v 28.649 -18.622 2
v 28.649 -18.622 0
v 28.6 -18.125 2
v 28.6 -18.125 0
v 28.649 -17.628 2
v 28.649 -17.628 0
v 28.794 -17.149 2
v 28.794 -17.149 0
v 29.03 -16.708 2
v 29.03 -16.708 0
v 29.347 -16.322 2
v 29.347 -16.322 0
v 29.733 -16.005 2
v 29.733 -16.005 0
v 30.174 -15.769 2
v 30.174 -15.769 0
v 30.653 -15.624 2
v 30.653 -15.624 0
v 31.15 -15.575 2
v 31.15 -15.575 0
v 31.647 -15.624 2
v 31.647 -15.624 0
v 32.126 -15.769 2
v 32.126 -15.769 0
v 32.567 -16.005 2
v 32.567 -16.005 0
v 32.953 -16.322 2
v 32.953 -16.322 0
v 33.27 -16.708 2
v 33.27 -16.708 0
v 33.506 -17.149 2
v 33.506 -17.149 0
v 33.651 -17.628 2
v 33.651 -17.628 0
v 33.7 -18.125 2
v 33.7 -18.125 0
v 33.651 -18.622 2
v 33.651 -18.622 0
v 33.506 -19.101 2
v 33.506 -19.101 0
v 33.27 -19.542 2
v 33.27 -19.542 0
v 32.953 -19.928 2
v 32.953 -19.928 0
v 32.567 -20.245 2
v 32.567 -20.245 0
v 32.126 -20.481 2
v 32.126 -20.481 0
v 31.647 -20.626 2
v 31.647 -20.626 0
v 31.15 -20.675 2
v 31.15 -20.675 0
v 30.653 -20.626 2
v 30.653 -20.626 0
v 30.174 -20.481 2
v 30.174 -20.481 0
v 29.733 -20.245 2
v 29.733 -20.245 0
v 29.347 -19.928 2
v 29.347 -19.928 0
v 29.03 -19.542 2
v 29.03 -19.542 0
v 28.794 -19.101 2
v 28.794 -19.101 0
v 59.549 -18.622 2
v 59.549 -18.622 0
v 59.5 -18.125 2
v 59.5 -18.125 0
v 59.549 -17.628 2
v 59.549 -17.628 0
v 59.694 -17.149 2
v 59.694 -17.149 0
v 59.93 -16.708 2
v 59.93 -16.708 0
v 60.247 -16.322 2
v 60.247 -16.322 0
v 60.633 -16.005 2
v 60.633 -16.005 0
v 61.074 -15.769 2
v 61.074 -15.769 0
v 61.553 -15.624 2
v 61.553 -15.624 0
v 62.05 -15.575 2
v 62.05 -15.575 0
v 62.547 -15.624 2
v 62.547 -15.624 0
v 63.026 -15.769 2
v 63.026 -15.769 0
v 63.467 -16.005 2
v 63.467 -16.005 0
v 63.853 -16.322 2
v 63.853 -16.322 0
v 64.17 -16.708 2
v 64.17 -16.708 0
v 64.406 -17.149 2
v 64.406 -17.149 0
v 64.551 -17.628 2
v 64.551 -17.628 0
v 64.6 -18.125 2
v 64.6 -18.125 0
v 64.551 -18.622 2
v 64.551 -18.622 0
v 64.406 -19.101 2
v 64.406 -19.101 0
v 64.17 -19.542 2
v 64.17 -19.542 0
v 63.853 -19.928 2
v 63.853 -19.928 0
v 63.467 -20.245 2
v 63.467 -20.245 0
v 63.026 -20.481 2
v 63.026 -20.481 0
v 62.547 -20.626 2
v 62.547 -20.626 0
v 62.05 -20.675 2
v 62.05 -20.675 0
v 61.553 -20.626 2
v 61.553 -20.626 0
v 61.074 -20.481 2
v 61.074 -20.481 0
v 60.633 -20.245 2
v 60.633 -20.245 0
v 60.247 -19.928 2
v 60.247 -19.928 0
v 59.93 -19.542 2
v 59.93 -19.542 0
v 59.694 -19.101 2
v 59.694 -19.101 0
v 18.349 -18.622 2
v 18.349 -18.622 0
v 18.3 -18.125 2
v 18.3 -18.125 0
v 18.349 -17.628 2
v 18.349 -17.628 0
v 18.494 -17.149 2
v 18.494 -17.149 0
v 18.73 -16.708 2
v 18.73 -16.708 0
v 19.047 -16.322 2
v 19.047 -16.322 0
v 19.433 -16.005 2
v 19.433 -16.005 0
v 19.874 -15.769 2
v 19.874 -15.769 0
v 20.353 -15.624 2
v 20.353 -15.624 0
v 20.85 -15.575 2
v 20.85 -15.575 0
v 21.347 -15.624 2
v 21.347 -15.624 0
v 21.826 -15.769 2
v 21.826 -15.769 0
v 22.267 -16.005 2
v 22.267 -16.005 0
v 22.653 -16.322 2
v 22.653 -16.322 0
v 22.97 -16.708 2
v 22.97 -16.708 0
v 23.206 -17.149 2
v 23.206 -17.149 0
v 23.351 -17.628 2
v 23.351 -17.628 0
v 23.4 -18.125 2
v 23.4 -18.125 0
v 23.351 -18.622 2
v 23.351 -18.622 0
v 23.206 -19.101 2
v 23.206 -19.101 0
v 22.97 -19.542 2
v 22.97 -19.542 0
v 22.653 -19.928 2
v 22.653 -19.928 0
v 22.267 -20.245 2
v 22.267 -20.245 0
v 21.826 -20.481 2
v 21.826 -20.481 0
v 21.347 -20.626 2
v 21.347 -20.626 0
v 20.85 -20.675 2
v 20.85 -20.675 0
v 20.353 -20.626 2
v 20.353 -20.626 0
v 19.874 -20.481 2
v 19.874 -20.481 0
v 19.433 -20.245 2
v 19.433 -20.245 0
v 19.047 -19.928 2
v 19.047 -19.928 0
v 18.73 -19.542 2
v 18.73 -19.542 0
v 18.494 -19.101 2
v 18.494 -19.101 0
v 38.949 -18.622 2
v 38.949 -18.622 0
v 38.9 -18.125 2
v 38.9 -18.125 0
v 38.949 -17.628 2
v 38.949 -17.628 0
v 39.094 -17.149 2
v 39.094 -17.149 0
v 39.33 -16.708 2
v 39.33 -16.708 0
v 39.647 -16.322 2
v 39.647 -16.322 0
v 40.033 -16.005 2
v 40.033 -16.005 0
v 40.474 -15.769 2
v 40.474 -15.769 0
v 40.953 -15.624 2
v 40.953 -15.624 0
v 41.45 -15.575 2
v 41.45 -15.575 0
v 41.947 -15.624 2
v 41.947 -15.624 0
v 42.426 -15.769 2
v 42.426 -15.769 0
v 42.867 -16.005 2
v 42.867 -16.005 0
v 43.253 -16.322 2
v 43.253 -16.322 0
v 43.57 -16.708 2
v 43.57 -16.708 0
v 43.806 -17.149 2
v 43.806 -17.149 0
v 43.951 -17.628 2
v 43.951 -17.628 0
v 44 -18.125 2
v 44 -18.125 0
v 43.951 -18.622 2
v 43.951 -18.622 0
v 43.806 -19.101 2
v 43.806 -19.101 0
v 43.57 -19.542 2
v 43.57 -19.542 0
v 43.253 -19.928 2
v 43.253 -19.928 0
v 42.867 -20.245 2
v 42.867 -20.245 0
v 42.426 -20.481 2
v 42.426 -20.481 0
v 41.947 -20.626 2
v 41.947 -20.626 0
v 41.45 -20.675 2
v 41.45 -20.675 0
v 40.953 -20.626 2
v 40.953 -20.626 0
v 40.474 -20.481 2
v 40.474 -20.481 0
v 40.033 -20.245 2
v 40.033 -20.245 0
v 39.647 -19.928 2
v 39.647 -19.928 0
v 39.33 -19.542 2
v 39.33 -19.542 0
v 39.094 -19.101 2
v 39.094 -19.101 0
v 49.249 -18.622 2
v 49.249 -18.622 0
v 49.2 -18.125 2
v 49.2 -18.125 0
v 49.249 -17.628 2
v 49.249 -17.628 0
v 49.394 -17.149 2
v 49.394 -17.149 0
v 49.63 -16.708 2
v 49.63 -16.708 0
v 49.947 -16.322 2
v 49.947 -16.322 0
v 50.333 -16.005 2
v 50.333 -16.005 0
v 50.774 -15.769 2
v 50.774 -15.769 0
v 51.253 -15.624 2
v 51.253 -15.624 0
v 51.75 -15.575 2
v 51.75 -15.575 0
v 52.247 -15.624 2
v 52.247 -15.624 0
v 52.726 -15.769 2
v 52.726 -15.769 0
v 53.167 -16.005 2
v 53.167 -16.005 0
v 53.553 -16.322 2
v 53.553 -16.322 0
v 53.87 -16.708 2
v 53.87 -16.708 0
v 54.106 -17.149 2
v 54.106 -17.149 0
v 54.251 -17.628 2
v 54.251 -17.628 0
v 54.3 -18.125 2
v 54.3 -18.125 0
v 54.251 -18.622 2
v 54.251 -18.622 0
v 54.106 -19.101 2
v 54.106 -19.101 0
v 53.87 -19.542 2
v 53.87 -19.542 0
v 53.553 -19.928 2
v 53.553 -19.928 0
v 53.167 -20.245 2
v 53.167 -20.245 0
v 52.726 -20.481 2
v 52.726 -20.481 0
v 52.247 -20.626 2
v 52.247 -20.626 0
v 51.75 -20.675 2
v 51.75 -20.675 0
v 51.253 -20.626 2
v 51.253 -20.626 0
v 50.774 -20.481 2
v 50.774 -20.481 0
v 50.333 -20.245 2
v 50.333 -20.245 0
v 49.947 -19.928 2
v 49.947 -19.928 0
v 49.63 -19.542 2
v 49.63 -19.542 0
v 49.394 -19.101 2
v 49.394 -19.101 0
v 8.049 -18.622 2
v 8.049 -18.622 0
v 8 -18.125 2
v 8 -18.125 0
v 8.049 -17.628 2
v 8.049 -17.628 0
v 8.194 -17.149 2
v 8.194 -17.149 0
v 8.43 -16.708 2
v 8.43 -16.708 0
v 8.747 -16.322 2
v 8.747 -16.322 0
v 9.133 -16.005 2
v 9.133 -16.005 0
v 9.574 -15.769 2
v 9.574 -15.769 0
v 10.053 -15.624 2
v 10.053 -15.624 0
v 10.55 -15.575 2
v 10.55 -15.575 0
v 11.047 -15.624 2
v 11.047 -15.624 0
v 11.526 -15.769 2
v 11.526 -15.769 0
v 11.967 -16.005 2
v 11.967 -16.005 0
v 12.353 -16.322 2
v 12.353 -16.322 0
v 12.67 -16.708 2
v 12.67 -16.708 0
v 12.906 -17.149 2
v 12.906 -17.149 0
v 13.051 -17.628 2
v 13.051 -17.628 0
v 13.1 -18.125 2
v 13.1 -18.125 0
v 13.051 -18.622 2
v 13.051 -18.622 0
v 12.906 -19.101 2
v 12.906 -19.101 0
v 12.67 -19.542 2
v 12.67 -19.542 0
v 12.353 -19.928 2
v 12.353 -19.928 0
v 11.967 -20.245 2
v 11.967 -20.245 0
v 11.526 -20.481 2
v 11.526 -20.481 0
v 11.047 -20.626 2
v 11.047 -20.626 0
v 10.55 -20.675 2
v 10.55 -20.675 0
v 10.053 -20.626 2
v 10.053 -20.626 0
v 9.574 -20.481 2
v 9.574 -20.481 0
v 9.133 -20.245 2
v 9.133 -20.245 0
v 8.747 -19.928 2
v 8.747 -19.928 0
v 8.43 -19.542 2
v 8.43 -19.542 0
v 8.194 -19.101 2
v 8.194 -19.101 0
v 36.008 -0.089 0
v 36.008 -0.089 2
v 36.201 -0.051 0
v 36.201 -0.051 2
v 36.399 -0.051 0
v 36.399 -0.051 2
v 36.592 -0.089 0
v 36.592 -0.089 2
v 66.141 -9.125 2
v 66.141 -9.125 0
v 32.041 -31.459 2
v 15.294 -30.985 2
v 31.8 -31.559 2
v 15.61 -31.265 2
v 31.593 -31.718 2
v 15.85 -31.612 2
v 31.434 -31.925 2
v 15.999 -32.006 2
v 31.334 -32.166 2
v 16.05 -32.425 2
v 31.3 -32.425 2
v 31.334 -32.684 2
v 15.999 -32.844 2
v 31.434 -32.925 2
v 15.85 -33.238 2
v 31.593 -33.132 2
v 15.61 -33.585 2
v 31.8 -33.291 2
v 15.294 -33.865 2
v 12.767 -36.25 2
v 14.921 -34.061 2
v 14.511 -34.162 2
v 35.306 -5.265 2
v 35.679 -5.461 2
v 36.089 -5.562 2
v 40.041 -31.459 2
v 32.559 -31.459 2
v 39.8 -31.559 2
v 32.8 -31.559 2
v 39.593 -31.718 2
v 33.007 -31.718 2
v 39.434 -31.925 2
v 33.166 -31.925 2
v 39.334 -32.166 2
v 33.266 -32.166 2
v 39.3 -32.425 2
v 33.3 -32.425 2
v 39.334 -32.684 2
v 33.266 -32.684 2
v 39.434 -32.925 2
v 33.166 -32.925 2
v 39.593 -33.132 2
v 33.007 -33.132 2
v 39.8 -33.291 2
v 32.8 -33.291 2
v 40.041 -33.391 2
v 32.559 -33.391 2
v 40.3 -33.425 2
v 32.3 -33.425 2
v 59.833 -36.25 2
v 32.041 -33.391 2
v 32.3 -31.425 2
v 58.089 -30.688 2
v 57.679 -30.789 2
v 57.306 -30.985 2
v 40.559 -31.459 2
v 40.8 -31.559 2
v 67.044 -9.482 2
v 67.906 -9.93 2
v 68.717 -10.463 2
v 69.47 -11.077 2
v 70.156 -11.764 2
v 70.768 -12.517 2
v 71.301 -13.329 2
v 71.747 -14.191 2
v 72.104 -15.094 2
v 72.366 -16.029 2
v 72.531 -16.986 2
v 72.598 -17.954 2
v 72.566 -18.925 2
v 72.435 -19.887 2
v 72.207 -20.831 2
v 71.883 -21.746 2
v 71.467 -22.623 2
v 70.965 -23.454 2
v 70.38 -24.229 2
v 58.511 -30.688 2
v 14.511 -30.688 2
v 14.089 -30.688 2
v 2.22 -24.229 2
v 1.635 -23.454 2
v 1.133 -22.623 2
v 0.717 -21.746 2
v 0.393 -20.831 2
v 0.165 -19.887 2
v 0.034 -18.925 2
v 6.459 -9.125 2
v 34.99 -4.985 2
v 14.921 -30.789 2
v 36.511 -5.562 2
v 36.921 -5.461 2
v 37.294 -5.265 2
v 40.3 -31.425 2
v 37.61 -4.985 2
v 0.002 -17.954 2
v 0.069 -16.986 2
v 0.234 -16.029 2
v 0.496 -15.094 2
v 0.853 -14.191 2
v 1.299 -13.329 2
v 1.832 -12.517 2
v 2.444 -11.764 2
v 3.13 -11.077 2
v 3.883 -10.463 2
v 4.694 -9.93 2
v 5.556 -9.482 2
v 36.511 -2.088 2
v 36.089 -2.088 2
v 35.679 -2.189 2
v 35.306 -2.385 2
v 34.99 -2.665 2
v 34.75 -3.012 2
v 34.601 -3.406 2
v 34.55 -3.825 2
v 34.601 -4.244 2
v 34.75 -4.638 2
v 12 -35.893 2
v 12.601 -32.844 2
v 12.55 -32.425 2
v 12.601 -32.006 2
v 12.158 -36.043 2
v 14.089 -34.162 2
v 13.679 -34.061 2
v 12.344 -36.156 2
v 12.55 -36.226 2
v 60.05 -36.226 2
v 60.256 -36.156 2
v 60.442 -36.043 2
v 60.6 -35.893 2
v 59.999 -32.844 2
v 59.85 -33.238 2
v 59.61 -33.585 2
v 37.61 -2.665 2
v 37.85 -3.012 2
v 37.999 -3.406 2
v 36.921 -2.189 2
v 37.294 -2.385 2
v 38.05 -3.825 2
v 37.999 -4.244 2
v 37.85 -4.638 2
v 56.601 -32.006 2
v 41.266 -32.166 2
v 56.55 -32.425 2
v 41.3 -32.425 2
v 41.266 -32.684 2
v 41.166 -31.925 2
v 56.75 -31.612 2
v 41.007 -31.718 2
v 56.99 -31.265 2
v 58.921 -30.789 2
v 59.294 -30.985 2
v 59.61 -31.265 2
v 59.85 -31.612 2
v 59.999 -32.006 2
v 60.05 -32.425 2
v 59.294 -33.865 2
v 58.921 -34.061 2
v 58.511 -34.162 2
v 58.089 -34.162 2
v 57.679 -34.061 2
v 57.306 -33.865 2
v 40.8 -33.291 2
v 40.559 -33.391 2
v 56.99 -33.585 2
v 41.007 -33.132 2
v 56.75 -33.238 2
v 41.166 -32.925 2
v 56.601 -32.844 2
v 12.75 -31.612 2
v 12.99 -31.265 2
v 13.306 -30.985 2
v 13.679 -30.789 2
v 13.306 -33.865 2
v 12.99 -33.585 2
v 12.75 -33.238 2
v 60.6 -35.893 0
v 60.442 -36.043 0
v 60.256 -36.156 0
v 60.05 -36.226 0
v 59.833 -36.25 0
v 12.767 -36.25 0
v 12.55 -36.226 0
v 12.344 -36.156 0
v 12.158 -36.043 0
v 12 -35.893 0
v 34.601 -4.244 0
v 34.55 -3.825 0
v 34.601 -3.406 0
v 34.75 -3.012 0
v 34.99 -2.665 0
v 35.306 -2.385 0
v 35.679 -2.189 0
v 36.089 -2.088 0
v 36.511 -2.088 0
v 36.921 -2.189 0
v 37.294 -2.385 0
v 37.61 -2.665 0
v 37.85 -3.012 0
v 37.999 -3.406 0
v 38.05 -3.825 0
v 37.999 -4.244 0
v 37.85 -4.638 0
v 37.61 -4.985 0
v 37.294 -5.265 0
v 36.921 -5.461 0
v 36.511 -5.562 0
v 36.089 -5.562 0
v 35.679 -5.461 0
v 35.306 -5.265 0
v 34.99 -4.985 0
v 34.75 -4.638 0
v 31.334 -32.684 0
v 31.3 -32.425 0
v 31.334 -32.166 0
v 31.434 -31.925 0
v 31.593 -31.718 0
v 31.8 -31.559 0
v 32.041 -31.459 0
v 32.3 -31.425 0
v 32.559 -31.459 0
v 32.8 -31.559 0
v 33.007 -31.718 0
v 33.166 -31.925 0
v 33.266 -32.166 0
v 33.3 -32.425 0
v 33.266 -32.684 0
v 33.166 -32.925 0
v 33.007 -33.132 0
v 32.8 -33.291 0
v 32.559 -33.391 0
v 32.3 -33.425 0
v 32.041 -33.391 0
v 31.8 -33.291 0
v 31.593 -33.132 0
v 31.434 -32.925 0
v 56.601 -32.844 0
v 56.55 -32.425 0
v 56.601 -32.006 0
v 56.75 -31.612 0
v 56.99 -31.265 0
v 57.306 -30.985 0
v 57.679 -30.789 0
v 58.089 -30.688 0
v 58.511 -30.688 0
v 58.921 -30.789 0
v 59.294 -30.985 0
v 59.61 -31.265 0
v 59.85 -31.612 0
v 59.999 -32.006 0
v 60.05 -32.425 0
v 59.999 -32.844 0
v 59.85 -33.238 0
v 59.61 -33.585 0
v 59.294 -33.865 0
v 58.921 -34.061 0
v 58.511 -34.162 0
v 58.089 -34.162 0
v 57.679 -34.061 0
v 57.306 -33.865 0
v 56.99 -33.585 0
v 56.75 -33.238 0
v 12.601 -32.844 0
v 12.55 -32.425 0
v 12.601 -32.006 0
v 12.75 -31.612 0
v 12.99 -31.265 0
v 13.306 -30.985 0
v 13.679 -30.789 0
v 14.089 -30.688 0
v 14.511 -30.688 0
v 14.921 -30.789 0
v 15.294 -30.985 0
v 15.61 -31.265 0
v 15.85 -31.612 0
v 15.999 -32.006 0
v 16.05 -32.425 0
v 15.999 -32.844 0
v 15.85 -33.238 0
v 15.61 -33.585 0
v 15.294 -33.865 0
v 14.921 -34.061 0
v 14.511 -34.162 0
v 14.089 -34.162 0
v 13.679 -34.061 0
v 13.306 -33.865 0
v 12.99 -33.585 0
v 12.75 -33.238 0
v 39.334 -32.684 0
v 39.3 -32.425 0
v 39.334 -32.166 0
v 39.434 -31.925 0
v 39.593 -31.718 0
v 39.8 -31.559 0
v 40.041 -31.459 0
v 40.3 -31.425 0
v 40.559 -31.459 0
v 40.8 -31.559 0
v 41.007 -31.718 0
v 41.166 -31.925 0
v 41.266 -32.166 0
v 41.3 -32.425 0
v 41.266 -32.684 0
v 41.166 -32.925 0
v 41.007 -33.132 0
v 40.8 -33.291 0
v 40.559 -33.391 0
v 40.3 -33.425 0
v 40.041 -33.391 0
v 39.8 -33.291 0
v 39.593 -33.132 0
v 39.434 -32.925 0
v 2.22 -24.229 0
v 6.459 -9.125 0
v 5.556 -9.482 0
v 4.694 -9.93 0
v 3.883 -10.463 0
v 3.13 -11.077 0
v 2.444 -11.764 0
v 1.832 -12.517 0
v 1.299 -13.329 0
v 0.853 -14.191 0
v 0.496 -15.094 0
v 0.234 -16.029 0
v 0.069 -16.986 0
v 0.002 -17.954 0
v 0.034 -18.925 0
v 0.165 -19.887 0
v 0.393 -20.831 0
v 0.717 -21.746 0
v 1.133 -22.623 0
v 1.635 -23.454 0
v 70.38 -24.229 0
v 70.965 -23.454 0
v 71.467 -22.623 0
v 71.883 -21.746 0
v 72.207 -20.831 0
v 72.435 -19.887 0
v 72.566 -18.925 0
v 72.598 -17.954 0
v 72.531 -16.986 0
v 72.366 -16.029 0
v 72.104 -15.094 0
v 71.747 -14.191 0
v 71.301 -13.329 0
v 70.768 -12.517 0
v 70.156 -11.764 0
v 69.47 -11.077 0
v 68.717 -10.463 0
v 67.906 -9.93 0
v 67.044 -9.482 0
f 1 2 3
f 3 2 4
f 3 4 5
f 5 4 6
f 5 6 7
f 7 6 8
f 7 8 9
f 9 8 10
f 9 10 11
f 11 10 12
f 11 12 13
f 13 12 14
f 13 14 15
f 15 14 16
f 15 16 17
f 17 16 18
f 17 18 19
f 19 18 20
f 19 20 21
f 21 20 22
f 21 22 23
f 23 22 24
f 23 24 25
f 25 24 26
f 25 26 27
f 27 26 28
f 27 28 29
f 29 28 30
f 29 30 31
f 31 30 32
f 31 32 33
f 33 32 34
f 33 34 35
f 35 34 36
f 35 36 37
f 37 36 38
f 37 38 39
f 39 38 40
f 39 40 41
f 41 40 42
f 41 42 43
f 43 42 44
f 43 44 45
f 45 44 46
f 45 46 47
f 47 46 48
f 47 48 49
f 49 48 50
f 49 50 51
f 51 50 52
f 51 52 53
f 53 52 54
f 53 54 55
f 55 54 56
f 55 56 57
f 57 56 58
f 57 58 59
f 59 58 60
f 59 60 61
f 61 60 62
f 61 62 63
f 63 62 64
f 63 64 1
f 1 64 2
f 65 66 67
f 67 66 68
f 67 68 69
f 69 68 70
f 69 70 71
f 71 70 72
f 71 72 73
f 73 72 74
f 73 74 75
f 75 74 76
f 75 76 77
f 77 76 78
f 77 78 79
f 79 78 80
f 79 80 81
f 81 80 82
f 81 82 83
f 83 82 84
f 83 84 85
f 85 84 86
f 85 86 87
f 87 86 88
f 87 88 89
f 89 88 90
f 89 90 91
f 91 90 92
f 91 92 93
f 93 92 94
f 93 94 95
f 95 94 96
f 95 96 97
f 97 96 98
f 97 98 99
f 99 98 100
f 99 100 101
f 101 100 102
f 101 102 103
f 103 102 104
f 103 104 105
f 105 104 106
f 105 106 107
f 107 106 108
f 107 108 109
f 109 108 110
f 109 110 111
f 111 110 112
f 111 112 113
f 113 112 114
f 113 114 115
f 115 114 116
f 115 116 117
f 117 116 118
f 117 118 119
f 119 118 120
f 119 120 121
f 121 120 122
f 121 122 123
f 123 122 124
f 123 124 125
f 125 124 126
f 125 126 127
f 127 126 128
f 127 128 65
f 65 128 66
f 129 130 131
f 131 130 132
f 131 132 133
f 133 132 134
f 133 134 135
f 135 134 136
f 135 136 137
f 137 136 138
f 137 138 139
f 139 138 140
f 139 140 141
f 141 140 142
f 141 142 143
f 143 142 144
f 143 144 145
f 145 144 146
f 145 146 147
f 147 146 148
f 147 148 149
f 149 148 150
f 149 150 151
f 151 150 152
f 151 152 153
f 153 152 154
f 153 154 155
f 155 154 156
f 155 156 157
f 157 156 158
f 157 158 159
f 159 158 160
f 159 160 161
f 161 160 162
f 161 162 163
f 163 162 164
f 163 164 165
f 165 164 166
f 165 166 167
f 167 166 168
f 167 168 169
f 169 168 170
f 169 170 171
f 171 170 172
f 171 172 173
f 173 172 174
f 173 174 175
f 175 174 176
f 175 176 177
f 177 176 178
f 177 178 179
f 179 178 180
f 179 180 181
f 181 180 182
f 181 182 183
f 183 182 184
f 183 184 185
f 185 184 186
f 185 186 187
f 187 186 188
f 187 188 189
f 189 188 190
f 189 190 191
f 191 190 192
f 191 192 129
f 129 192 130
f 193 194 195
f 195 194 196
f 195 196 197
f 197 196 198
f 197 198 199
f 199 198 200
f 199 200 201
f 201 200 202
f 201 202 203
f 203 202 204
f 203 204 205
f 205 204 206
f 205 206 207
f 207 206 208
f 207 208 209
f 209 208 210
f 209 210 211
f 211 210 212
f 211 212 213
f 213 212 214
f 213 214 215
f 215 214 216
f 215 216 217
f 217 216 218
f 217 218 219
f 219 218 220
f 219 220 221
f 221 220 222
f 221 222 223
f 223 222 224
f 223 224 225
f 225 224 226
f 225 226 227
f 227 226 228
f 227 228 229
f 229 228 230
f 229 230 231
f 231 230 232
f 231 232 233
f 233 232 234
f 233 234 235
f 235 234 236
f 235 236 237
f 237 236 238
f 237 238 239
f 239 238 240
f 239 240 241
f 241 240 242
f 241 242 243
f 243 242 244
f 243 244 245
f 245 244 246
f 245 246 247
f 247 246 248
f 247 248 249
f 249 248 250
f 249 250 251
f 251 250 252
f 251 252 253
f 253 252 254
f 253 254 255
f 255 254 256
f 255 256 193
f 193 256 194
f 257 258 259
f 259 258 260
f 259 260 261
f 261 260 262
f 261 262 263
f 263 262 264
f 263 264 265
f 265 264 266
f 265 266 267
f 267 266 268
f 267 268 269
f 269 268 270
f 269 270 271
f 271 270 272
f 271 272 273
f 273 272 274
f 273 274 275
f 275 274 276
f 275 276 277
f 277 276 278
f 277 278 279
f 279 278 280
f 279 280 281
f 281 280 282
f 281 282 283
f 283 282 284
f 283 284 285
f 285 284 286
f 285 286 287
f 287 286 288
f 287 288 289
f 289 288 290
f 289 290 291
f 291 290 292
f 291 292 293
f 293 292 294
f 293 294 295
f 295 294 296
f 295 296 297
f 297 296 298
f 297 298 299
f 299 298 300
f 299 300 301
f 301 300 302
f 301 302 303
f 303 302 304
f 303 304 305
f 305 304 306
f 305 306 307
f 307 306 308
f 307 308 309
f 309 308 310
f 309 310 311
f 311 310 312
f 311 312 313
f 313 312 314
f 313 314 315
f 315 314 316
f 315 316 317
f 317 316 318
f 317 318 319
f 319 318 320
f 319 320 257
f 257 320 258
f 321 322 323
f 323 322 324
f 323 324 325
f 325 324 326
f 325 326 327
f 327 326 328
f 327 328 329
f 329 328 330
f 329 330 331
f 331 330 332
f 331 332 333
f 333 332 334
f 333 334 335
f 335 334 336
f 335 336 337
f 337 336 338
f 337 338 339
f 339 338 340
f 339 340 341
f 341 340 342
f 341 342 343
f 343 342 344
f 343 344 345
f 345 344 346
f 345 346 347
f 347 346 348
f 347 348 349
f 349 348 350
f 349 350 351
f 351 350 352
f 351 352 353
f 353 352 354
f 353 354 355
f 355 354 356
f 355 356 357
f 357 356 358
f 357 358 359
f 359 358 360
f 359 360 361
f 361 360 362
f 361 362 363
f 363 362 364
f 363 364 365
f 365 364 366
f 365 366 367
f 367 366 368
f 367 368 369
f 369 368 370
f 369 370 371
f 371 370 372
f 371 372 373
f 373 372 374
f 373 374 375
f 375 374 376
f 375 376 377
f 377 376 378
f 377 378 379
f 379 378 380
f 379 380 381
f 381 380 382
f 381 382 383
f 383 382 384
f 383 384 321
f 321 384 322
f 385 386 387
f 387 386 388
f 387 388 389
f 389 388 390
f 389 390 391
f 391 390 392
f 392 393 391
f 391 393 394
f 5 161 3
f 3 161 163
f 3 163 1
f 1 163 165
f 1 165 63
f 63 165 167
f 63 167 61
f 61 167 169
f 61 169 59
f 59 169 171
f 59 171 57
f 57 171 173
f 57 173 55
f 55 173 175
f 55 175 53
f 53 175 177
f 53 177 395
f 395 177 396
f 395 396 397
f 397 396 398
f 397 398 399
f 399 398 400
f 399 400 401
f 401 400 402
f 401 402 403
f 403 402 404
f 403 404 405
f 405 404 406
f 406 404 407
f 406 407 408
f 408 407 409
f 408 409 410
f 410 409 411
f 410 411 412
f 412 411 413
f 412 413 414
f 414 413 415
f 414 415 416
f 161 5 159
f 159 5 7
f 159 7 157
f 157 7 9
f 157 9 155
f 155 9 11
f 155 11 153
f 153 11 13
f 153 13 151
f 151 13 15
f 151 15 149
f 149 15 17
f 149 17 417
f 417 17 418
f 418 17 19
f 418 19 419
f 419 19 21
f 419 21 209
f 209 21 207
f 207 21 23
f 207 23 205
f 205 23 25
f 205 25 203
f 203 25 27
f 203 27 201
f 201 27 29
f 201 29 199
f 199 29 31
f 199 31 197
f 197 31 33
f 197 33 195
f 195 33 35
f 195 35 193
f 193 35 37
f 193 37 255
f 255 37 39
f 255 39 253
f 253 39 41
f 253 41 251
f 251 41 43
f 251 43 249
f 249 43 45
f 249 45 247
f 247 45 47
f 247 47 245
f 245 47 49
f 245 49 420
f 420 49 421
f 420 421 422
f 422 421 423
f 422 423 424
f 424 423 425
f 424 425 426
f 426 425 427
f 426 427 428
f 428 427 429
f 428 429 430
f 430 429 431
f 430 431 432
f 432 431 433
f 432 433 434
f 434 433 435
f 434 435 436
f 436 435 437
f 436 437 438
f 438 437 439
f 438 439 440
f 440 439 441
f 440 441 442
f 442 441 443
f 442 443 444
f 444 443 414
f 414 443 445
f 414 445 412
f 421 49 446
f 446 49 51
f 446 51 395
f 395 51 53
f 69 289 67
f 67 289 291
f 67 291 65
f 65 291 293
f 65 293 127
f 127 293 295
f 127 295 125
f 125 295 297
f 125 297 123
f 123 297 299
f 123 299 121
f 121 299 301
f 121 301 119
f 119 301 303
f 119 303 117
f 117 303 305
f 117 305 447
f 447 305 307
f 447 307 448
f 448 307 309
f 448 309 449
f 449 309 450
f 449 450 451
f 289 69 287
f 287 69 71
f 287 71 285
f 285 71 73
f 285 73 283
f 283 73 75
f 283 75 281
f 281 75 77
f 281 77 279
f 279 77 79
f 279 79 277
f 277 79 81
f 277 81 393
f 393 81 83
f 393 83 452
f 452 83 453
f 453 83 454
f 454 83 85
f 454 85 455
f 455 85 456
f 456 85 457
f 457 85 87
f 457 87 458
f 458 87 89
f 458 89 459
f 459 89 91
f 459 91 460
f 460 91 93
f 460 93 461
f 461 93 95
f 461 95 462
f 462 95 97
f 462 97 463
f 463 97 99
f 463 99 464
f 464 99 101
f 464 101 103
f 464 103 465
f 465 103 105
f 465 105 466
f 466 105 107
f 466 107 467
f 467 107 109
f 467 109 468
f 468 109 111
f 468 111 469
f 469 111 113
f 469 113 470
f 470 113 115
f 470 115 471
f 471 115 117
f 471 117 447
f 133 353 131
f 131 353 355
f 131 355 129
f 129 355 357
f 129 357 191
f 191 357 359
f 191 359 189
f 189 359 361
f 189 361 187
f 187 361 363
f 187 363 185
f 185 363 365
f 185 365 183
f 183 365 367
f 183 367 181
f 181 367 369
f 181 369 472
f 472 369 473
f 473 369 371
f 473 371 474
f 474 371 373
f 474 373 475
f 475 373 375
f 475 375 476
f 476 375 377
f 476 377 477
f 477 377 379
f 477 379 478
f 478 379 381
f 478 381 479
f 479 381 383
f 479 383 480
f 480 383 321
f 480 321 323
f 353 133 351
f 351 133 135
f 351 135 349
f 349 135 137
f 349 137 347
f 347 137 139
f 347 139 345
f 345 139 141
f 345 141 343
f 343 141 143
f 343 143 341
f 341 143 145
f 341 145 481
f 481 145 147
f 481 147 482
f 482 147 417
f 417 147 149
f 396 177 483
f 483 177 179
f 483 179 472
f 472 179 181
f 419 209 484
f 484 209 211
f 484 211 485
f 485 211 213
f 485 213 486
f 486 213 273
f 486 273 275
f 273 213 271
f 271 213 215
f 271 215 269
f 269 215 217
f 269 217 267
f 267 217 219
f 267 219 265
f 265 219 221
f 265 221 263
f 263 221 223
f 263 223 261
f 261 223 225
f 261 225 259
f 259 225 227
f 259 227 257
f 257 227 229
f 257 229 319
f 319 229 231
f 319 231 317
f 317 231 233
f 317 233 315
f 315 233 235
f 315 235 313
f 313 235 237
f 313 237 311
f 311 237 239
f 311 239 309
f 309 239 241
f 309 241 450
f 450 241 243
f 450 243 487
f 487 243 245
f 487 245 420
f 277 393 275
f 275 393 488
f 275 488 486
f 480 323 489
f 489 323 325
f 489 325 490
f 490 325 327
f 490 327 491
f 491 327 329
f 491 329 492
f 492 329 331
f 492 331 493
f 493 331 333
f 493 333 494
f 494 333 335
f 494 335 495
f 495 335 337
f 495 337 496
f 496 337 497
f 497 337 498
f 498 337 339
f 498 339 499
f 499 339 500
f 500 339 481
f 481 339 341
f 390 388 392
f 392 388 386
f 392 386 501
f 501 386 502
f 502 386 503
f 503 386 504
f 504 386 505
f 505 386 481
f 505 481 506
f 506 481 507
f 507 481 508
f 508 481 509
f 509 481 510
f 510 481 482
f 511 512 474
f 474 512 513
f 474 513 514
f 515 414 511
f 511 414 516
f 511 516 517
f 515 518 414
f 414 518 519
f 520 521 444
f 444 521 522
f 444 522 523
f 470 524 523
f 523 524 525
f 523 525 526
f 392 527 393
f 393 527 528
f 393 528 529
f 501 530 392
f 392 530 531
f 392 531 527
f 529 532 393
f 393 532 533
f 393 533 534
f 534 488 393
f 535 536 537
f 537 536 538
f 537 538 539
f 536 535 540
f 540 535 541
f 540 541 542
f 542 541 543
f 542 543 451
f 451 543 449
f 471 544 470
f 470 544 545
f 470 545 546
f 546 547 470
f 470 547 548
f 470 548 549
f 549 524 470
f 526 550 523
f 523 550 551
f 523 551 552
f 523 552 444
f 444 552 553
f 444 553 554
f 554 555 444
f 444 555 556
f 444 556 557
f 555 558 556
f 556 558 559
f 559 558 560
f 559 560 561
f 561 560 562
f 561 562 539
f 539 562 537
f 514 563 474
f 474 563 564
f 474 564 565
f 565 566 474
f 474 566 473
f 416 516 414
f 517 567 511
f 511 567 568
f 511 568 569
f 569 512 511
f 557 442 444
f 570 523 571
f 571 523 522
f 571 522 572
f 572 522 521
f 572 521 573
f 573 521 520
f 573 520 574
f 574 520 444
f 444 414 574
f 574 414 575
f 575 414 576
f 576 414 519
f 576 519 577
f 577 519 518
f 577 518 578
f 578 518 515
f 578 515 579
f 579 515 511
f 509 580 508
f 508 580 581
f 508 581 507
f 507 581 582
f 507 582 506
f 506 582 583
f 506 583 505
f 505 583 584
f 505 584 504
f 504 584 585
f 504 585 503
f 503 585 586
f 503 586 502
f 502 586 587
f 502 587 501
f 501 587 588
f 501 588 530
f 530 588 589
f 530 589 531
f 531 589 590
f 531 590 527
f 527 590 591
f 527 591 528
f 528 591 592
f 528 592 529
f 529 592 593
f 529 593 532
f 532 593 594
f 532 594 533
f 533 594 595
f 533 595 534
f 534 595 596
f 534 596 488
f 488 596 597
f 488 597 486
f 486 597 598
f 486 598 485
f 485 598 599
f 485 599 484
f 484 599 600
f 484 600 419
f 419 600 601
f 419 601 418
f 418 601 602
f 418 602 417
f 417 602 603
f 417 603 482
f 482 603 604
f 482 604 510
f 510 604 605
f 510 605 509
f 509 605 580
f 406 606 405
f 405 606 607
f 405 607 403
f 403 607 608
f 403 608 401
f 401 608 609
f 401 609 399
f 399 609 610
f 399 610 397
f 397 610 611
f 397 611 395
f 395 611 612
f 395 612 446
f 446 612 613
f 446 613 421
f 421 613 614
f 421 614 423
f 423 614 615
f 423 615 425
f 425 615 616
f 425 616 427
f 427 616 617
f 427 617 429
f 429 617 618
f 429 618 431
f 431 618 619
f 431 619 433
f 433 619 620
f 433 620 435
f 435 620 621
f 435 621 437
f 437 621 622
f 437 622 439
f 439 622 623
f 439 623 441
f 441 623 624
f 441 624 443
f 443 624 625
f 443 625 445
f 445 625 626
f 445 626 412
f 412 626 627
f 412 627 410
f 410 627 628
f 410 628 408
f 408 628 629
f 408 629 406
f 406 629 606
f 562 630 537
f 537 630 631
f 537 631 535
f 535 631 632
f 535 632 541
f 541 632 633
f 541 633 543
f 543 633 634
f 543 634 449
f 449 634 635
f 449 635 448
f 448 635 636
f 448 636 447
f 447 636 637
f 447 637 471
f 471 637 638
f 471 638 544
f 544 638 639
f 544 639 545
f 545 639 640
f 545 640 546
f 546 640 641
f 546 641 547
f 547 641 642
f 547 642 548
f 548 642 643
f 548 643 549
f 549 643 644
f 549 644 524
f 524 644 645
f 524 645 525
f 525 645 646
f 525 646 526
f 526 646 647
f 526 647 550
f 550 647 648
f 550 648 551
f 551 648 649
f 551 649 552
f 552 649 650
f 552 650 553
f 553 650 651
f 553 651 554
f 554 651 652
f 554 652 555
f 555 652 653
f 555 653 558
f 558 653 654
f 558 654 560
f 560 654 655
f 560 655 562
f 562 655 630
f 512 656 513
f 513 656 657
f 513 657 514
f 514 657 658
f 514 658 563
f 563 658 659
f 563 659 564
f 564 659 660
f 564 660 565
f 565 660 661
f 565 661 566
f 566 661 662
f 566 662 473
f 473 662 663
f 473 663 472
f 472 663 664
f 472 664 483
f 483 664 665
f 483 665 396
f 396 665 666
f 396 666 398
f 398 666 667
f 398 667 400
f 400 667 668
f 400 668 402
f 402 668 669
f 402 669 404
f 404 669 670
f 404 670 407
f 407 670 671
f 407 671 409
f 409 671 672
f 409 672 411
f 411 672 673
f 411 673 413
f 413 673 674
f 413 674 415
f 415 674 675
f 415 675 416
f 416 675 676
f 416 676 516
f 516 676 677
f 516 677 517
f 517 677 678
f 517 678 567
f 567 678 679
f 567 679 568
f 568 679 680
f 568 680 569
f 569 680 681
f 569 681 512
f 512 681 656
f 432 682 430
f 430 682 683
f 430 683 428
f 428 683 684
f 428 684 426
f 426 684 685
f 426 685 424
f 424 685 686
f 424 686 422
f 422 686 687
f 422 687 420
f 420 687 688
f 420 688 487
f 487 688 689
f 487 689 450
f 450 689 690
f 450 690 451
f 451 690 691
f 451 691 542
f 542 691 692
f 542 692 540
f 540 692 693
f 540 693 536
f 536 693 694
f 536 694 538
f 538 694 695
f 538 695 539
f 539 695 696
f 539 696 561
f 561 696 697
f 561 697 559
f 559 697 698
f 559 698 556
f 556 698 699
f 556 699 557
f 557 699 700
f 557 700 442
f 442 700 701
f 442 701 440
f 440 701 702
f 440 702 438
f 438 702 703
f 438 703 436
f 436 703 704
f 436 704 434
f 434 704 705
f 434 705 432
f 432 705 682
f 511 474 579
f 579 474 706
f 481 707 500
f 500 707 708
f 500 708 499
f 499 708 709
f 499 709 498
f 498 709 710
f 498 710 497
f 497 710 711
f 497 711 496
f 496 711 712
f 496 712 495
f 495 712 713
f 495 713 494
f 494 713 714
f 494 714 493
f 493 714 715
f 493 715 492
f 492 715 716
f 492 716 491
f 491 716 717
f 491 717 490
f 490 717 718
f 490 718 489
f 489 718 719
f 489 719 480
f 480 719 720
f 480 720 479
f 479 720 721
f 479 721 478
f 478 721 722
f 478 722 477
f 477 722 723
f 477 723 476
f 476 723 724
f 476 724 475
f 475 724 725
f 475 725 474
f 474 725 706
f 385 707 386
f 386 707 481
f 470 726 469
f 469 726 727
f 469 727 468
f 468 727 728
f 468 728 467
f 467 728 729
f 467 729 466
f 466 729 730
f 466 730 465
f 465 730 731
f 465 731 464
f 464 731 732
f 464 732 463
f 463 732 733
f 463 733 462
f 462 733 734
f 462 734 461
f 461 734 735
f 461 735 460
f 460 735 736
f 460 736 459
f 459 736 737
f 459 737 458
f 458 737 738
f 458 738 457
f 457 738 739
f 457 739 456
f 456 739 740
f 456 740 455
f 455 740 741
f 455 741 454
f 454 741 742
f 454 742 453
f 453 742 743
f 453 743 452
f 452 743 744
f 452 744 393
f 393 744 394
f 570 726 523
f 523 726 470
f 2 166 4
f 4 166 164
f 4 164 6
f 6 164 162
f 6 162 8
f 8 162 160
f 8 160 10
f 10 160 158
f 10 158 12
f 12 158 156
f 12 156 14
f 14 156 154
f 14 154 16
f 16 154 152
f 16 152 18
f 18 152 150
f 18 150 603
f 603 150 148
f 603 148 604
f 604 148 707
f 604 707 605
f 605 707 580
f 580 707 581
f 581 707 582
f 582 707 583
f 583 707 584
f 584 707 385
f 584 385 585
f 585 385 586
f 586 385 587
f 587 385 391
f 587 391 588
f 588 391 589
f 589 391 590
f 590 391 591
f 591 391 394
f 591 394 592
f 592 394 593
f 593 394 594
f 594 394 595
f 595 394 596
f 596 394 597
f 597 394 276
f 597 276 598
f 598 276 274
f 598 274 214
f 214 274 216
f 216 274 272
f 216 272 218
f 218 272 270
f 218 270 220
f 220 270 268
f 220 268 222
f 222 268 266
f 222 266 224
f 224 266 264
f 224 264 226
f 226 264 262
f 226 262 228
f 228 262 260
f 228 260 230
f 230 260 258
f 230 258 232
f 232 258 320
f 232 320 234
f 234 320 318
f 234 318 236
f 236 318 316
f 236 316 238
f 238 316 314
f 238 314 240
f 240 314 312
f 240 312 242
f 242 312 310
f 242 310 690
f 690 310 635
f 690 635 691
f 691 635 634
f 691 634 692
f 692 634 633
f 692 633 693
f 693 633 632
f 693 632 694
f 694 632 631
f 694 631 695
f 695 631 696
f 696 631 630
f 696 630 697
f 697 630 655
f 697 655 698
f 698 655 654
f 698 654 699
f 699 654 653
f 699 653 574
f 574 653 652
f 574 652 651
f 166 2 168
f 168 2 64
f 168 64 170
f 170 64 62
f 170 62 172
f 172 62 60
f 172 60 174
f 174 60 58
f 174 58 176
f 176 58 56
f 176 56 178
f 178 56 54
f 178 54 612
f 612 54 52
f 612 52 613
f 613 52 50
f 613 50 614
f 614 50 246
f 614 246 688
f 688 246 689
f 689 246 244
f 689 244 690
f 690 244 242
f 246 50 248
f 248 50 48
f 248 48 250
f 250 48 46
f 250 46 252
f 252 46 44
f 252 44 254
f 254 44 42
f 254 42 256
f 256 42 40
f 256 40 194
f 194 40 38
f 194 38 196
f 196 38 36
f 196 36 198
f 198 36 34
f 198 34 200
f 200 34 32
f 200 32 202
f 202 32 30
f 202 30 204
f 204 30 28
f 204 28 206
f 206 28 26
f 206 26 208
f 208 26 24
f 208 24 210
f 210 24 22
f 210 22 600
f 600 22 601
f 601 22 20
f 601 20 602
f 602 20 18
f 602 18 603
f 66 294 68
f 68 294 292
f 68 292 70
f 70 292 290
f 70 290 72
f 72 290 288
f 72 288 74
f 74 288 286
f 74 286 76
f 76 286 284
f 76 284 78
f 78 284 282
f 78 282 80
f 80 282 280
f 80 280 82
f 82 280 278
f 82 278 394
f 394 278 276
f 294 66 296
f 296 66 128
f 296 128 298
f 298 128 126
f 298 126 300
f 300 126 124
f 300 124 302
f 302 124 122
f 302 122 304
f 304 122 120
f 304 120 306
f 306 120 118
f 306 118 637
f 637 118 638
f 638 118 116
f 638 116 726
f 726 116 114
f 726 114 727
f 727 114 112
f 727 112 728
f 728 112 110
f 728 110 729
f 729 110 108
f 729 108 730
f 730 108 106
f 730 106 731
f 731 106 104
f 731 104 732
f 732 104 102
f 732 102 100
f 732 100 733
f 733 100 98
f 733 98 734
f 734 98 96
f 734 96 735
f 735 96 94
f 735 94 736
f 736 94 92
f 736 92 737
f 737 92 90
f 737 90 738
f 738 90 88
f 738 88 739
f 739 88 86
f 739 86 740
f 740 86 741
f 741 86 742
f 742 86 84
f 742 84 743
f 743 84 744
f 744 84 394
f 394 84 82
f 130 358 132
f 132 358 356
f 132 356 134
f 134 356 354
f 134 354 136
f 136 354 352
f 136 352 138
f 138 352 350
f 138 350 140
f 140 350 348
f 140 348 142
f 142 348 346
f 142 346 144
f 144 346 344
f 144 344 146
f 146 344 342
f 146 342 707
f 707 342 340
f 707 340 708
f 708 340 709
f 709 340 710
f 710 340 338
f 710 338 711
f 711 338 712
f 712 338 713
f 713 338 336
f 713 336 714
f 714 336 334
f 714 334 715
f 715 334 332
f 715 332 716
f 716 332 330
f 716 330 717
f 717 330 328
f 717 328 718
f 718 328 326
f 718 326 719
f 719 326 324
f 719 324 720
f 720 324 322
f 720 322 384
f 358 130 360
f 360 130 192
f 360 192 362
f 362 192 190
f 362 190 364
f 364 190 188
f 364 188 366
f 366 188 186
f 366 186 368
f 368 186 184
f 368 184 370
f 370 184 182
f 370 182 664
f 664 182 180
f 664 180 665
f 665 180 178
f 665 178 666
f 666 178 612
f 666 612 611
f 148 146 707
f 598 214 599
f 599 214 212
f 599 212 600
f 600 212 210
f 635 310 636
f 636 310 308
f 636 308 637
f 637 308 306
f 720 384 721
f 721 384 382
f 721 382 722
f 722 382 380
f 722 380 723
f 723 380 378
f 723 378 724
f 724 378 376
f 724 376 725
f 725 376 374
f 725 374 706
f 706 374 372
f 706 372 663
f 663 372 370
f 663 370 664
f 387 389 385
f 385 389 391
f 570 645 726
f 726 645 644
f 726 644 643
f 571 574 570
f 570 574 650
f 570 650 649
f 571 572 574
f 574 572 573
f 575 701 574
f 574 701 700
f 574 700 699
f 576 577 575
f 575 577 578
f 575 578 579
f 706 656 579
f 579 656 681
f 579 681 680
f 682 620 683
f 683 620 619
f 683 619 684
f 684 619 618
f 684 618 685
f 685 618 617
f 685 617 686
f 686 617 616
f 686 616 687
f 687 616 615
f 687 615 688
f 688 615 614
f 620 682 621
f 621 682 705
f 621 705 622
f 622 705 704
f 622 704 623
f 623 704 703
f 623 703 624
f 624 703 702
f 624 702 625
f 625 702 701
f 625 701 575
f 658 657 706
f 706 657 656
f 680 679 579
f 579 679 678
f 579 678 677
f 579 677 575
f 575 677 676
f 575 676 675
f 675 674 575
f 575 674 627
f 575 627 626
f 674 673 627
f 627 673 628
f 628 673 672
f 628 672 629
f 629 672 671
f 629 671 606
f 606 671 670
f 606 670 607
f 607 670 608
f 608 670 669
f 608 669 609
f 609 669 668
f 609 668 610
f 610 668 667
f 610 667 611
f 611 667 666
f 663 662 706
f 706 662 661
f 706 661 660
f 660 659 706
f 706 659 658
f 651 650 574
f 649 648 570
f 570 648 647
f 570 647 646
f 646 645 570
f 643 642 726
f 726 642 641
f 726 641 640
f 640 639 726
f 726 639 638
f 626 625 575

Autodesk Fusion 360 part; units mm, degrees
sketch "スケッチ1" plane through (0, 0, 0) normal (0, 0, 1) x (1, 0, 0)
  line L0 (0, 0) -> (72.6, 0)
  line L1 (72.6, 0) -> (72.6, -36.25)
  line L2 (72.6, -36.25) -> (0, -36.25)
  line L3 (0, -36.25) -> (0, 0)
  line L4 (36.3, 0) -> (36.3, -36.25)
  line L5 (0, -18.125) -> (72.6, -18.125)
  line L6 (72.6, -8.625) -> (72.6, -26.625)
  line L7 (58.3, -36.25) -> (14.3, -36.25)
  line L8 (0, -9.125) -> (0, -27.125)
  line L9 (0, -18.125) -> (9.5, -18.125)
  line L10 (0, -9.125) -> (6.4586, -9.125)
  line L11 (0, -27.125) -> (4.6488, -27.125)
  line L12 (6.4586, -9.125) -> (36.3, 0)
  line L13 (14.3, -36.25) -> (12.3, -36.25)
  line L14 (12.3, -36.25) -> (2.2204, -24.2289)
  line L15 (36.3, -18.125) -> (36.3, -32.425)
  line L16 (36.3, -18.125) -> (36.3, -3.825)
  line L17 (66.1414, -9.125) -> (36.3, 0)
  line L18 (60.3, -36.25) -> (70.3796, -24.2289)
  line L19 (58.3, -36.25) -> (60.3, -36.25)
  line L20 (6.4586, -27.125) -> (66.1414, -27.125)
  line L21 (6.4586, -9.125) -> (66.1414, -9.125)
  arc A0 (6.9878, -8.9632) -> (6.4586, -27.125) centre (9.5, -18.125) ccw
  arc A1 (66.1414, -27.125) -> (65.6122, -8.9632) centre (63.1, -18.125) ccw
  circle A2 centre (14.3, -32.425) radius 1.75
  circle A3 centre (36.3, -3.825) radius 1.75
  circle A4 centre (58.3, -32.425) radius 1.75
  circle A5 centre (32.3, -32.425) radius 1
  circle A6 centre (40.3, -32.425) radius 1
  line L22 (36.3, -9.125) -> (36.3, -13.125)
  line L23 (0, -18.125) -> (4, -18.125)
  line L24 (36.3, -13.125) -> (5.4223, -13.125)
  line L25 (36.3, -27.125) -> (36.3, -23.125)
  line L26 (36.3, -23.125) -> (5.4223, -23.125)
  arc A7 (5.4223, -13.125) -> (5.4223, -23.125) centre (13.5, -18.125) ccw
  circle A8 centre (10.55, -18.125) radius 2.55
  circle A9 centre (20.85, -18.125) radius 2.55
  circle A10 centre (31.15, -18.125) radius 2.55
  line L27 (36.3, -13.125) -> (67.1777, -13.125)
  arc A11 (67.1777, -23.125) -> (67.1777, -13.125) centre (59.1, -18.125) ccw
  line L28 (36.3, -23.125) -> (67.1777, -23.125)
  circle A12 centre (41.45, -18.125) radius 2.55
  circle A13 centre (51.75, -18.125) radius 2.55
  circle A14 centre (62.05, -18.125) radius 2.55
  point P0 (36.3, -18.125)
  point P1 (36.3, -3.825)
  point P2 (14.3, -32.425)
  point P3 (58.3, -32.425)
  point P4 (40.3, -32.425)
  point P5 (40.3, -32.425)
  point P6 (32.3, -32.425)
  point P7 (31.15, -18.125)
  point P8 (20.85, -18.125)
  point P9 (10.55, -18.125)
  point P10 (41.45, -18.125)
  point P11 (51.75, -18.125)
  point P12 (62.05, -18.125)
  dimension "d5" = 72.6
  dimension "d6" = 36.25
  dimension "d10" = 44
  dimension "d11" = 9
  dimension "d12" = 18
  dimension "d13" = 9.5
  dimension "d14" = 2
  dimension "d15" = 14.3
  dimension "d16" = 22
  dimension "d17" = 14.3
  dimension "d18" = 3.5
  dimension "d19" = 3.5
  dimension "d20" = 3.5
  dimension "d21" = 4
  dimension "d24" = 2
  dimension "d25" = 2
  dimension "d30" = 4
  dimension "d31" = 4
  dimension "d32" = 9.5
  dimension "d33" = 4
  dimension "d34" = 5.15
  dimension "d35" = 10.3
  dimension "d36" = 10.3
  dimension "d37" = 5.1
  dimension "d38" = 5.1
  dimension "d39" = 5.1
  dimension "d46" = 5.1
  dimension "d47" = 5.1
  dimension "d48" = 5.1
extrude "押し出し1" add sketch "スケッチ1" along normal blind 2 contours L4 L16 L17 L21 A3 | L4 L12 L16 L21 A3 | L4 L5 L9 L16 L21 A0 L22 L23 L24 A7 | L4 L5 L9 L15 L20 A0 L23 L25 L26 A7 | L4 L5 L16 L21 A1 L22 L27 A11 | L4 L5 L9 L16 L24 A7 A8 A9 A10 | L4 L5 L9 L15 L26 A7 A8 A9 A10 | L2 L4 L7 L13 L14 L15 L20 A0 | L4 L5 L15 L20 A1 L25 A11 L28 | L5 L9 A8 | L5 L9 A8 | L4 L5 L16 L27 A11 A12 A13 A14 | L4 L5 L15 A11 L28 A12 A13 A14 | L2 L4 L7 L15 L18 L19 L20 A1 | L5 A14 | L5 A14 | L5 A9 | L5 A9 | L5 A10 | L5 A10 | L5 A12 | L5 A12 | L5 A13 | L5 A13
fillet "フィレット1" radius 1 3 edges at (12.3, -36.25, 1) (60.3, -36.25, 1) (36.3, 0, 1)
sketch "スケッチ2" plane through (0, 0, 2) normal (0, 0, 1) x (-1, 0, 0)
  arc A0 (-36.5924, 0.0894) -> (-36.0076, 0.0894) centre (-36.3, 1.0457) ccw
  line L0 (-36.0076, 0.0894) -> (-6.4586, 9.125)
  arc A1 (-6.4586, 9.125) -> (-2.2204, 24.2289) centre (-9.5, 18.125) ccw
  line L1 (-2.2204, 24.2289) -> (-12.0003, 35.8925)
  arc A2 (-12.0003, 35.8925) -> (-12.7665, 36.25) centre (-12.7665, 35.25) ccw
  line L2 (-12.7665, 36.25) -> (-59.8335, 36.25)
  arc A3 (-59.8335, 36.25) -> (-60.5997, 35.8925) centre (-59.8335, 35.25) ccw
  line L3 (-60.5997, 35.8925) -> (-70.3796, 24.2289)
  arc A4 (-70.3796, 24.2289) -> (-66.1414, 9.125) centre (-63.1, 18.125) ccw
  line L4 (-66.1414, 9.125) -> (-36.5924, 0.0894)
  circle A5 centre (-36.3, 3.825) radius 1.75
  circle A6 centre (-32.3, 32.425) radius 1
  circle A7 centre (-40.3, 32.425) radius 1
  circle A8 centre (-14.3, 32.425) radius 1.75
  circle A9 centre (-58.3, 32.425) radius 1.75
extrude "押し出し2" cut sketch "スケッチ1" along normal blind 2 contours L5 L9 A8 | L5 L9 A8 | L5 A14 | L5 A14 | L5 A9 | L5 A9 | L5 A10 | L5 A10 | L5 A12 | L5 A12 | L5 A13 | L5 A13
